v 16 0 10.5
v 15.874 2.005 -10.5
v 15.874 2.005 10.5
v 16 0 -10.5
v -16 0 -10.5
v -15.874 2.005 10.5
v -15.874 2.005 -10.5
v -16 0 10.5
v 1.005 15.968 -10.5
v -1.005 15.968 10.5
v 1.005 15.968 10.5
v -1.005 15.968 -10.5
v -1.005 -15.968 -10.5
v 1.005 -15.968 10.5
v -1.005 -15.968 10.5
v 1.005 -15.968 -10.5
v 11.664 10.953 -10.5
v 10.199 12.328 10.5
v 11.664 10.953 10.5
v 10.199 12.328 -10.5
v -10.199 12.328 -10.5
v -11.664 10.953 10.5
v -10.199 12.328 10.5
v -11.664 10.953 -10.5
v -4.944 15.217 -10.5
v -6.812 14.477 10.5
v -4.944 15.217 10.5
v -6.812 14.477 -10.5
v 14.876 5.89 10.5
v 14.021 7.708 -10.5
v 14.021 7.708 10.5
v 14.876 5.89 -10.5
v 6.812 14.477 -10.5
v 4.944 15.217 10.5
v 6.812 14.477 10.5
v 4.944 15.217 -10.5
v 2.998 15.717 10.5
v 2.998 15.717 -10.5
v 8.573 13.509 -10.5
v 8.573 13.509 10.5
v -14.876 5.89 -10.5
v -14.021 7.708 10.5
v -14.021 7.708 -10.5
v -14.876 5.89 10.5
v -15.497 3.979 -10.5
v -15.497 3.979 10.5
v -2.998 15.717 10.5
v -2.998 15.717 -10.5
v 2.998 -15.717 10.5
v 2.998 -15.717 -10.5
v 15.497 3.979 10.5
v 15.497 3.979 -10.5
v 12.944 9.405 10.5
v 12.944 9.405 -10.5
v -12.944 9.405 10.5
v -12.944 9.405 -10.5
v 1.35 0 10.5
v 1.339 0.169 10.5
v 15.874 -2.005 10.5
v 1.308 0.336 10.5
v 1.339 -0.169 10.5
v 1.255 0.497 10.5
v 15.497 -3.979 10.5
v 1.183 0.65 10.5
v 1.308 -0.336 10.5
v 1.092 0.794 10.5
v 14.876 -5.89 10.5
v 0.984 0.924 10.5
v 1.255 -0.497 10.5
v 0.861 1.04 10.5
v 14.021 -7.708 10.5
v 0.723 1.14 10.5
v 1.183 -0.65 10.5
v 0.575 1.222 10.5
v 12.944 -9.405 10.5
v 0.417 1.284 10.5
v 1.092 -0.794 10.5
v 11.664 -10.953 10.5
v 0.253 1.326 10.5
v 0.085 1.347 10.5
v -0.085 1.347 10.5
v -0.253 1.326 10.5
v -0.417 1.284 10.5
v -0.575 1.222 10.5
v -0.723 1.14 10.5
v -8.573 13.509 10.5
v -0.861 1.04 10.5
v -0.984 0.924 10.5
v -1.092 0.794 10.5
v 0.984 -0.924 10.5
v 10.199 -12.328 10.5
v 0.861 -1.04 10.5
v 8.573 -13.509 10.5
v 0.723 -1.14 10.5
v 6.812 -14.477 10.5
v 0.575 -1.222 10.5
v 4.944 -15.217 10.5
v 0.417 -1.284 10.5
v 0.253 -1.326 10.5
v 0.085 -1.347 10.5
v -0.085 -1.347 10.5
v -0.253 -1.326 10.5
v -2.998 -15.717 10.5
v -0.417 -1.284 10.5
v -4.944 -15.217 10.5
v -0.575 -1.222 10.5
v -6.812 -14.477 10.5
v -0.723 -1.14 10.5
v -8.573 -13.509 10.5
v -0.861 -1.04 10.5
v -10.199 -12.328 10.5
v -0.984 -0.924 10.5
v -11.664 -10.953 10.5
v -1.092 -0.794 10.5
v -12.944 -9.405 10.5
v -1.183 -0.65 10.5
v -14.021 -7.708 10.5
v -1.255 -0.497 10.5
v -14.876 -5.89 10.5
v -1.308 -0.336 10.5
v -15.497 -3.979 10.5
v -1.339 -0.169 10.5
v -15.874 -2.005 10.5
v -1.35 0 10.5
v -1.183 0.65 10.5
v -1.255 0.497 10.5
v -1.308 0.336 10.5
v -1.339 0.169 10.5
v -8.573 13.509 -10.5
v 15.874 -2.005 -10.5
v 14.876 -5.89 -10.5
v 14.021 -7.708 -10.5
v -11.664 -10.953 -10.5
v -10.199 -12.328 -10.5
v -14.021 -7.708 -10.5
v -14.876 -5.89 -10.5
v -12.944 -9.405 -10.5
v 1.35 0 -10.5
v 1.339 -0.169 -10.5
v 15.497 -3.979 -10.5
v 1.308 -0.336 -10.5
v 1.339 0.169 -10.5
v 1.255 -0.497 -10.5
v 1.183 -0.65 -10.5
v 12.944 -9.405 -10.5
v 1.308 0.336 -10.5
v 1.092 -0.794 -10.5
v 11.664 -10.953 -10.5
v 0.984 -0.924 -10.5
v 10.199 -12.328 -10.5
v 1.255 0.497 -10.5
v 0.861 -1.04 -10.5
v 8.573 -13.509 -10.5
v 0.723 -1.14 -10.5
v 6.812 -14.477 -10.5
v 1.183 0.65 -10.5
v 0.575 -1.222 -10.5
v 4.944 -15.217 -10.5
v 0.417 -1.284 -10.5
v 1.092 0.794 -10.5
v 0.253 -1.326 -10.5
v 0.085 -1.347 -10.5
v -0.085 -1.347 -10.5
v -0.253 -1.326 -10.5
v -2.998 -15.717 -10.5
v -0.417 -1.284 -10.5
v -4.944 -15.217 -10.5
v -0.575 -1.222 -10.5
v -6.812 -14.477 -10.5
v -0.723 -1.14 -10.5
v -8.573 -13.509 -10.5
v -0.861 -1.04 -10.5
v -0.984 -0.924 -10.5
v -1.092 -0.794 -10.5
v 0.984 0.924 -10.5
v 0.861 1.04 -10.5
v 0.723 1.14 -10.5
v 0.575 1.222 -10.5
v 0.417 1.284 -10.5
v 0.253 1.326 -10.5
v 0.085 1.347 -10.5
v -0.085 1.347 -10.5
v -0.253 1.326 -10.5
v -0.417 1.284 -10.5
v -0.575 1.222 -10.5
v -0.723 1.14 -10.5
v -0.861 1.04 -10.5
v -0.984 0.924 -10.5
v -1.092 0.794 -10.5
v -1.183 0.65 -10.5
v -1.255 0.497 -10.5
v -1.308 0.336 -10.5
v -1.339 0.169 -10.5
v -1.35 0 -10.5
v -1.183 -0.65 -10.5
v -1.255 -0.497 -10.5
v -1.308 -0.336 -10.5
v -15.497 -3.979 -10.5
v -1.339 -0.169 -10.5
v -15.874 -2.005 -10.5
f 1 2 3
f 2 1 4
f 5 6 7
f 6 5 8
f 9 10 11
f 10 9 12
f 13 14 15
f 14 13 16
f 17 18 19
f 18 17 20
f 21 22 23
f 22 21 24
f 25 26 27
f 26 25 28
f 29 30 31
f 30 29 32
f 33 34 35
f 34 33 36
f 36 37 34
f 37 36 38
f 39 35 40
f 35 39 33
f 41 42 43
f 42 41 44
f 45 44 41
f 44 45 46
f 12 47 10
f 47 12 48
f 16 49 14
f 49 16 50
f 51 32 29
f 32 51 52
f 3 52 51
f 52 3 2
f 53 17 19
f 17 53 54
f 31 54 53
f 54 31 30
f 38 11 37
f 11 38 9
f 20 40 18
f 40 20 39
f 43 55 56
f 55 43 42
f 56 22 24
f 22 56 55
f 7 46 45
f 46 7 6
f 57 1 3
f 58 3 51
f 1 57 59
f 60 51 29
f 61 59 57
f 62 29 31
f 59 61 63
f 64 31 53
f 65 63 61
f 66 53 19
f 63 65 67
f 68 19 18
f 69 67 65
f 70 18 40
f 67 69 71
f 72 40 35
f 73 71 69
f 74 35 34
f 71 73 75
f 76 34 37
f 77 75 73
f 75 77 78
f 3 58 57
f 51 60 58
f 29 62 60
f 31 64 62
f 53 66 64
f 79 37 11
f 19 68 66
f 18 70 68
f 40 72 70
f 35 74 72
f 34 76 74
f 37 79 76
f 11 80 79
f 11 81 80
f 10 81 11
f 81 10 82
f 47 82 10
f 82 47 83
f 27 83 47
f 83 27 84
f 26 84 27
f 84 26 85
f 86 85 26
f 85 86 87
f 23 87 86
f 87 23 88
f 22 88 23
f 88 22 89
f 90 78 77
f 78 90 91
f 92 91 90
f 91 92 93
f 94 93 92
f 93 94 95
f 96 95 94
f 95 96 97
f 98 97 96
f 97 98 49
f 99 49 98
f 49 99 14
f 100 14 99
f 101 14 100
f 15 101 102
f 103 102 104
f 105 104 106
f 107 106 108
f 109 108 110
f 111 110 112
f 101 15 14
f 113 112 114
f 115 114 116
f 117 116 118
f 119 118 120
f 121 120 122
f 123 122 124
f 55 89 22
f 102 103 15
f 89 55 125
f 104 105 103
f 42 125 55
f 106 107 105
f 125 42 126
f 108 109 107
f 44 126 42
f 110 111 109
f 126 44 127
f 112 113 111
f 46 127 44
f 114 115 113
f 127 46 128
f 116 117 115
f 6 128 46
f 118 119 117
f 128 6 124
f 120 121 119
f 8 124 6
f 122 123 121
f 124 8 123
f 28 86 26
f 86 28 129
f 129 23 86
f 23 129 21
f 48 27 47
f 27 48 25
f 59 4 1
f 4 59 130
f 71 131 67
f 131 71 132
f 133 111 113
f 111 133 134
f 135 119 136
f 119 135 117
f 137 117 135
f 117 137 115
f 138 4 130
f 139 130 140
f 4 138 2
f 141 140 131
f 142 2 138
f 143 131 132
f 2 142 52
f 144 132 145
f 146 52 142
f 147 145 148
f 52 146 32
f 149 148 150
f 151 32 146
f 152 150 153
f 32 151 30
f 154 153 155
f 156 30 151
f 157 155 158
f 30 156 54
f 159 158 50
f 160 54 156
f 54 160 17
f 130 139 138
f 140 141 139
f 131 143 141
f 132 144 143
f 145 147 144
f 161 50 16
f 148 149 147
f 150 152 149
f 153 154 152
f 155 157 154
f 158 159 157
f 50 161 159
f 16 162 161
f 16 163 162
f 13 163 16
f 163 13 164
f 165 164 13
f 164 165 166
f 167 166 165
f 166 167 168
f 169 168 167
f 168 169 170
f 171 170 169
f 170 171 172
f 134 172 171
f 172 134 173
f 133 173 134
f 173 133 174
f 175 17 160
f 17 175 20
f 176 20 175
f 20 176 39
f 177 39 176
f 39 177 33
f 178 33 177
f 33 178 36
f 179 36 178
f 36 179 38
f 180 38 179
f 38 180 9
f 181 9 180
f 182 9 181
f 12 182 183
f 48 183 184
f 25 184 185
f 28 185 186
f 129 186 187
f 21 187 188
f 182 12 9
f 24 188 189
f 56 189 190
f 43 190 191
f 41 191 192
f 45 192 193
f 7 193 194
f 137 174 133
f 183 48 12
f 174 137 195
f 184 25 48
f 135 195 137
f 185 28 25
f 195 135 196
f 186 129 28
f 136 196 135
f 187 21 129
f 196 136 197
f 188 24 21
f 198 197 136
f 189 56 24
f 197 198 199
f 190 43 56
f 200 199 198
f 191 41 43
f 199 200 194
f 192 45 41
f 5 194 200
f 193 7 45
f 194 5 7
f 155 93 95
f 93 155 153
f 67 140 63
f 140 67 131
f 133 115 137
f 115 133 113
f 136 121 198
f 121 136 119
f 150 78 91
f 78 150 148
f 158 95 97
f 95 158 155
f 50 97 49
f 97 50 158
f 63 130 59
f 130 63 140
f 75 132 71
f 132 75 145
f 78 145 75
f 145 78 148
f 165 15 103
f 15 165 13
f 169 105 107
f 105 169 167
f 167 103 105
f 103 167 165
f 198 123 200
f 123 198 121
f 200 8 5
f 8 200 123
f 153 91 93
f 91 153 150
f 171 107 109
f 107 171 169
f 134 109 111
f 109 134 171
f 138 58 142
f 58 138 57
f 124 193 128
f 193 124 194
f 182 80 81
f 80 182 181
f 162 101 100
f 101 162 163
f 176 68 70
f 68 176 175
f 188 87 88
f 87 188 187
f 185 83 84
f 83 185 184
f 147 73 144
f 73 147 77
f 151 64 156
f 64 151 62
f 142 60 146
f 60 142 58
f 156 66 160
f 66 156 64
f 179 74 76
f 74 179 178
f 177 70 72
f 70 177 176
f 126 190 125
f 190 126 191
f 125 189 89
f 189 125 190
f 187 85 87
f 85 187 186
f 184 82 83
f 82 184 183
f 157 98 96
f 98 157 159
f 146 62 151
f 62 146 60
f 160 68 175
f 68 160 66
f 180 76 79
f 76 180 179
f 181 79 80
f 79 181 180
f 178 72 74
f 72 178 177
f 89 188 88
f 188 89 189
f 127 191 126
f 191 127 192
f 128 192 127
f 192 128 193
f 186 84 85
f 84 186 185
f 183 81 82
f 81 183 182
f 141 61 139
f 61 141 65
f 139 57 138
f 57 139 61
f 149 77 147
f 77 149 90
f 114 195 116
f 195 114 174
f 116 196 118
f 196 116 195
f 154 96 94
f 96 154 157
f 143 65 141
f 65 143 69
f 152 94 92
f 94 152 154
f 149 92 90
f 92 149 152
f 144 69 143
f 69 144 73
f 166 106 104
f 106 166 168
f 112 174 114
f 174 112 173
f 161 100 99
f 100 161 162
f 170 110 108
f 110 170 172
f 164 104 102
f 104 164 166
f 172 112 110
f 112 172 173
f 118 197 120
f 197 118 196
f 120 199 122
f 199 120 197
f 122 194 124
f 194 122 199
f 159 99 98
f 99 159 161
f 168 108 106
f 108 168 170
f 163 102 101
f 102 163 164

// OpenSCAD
$fn = 50;


difference() {
	union() {
		translate(v = [0, 0, -10.5000000000]) {
			cylinder(h = 21, r = 16.0000000000);
		}
	}
	union() {
		translate(v = [0, 0, -100.0000000000]) {
			cylinder(h = 200, r = 1.3500000000);
		}
	}
}
